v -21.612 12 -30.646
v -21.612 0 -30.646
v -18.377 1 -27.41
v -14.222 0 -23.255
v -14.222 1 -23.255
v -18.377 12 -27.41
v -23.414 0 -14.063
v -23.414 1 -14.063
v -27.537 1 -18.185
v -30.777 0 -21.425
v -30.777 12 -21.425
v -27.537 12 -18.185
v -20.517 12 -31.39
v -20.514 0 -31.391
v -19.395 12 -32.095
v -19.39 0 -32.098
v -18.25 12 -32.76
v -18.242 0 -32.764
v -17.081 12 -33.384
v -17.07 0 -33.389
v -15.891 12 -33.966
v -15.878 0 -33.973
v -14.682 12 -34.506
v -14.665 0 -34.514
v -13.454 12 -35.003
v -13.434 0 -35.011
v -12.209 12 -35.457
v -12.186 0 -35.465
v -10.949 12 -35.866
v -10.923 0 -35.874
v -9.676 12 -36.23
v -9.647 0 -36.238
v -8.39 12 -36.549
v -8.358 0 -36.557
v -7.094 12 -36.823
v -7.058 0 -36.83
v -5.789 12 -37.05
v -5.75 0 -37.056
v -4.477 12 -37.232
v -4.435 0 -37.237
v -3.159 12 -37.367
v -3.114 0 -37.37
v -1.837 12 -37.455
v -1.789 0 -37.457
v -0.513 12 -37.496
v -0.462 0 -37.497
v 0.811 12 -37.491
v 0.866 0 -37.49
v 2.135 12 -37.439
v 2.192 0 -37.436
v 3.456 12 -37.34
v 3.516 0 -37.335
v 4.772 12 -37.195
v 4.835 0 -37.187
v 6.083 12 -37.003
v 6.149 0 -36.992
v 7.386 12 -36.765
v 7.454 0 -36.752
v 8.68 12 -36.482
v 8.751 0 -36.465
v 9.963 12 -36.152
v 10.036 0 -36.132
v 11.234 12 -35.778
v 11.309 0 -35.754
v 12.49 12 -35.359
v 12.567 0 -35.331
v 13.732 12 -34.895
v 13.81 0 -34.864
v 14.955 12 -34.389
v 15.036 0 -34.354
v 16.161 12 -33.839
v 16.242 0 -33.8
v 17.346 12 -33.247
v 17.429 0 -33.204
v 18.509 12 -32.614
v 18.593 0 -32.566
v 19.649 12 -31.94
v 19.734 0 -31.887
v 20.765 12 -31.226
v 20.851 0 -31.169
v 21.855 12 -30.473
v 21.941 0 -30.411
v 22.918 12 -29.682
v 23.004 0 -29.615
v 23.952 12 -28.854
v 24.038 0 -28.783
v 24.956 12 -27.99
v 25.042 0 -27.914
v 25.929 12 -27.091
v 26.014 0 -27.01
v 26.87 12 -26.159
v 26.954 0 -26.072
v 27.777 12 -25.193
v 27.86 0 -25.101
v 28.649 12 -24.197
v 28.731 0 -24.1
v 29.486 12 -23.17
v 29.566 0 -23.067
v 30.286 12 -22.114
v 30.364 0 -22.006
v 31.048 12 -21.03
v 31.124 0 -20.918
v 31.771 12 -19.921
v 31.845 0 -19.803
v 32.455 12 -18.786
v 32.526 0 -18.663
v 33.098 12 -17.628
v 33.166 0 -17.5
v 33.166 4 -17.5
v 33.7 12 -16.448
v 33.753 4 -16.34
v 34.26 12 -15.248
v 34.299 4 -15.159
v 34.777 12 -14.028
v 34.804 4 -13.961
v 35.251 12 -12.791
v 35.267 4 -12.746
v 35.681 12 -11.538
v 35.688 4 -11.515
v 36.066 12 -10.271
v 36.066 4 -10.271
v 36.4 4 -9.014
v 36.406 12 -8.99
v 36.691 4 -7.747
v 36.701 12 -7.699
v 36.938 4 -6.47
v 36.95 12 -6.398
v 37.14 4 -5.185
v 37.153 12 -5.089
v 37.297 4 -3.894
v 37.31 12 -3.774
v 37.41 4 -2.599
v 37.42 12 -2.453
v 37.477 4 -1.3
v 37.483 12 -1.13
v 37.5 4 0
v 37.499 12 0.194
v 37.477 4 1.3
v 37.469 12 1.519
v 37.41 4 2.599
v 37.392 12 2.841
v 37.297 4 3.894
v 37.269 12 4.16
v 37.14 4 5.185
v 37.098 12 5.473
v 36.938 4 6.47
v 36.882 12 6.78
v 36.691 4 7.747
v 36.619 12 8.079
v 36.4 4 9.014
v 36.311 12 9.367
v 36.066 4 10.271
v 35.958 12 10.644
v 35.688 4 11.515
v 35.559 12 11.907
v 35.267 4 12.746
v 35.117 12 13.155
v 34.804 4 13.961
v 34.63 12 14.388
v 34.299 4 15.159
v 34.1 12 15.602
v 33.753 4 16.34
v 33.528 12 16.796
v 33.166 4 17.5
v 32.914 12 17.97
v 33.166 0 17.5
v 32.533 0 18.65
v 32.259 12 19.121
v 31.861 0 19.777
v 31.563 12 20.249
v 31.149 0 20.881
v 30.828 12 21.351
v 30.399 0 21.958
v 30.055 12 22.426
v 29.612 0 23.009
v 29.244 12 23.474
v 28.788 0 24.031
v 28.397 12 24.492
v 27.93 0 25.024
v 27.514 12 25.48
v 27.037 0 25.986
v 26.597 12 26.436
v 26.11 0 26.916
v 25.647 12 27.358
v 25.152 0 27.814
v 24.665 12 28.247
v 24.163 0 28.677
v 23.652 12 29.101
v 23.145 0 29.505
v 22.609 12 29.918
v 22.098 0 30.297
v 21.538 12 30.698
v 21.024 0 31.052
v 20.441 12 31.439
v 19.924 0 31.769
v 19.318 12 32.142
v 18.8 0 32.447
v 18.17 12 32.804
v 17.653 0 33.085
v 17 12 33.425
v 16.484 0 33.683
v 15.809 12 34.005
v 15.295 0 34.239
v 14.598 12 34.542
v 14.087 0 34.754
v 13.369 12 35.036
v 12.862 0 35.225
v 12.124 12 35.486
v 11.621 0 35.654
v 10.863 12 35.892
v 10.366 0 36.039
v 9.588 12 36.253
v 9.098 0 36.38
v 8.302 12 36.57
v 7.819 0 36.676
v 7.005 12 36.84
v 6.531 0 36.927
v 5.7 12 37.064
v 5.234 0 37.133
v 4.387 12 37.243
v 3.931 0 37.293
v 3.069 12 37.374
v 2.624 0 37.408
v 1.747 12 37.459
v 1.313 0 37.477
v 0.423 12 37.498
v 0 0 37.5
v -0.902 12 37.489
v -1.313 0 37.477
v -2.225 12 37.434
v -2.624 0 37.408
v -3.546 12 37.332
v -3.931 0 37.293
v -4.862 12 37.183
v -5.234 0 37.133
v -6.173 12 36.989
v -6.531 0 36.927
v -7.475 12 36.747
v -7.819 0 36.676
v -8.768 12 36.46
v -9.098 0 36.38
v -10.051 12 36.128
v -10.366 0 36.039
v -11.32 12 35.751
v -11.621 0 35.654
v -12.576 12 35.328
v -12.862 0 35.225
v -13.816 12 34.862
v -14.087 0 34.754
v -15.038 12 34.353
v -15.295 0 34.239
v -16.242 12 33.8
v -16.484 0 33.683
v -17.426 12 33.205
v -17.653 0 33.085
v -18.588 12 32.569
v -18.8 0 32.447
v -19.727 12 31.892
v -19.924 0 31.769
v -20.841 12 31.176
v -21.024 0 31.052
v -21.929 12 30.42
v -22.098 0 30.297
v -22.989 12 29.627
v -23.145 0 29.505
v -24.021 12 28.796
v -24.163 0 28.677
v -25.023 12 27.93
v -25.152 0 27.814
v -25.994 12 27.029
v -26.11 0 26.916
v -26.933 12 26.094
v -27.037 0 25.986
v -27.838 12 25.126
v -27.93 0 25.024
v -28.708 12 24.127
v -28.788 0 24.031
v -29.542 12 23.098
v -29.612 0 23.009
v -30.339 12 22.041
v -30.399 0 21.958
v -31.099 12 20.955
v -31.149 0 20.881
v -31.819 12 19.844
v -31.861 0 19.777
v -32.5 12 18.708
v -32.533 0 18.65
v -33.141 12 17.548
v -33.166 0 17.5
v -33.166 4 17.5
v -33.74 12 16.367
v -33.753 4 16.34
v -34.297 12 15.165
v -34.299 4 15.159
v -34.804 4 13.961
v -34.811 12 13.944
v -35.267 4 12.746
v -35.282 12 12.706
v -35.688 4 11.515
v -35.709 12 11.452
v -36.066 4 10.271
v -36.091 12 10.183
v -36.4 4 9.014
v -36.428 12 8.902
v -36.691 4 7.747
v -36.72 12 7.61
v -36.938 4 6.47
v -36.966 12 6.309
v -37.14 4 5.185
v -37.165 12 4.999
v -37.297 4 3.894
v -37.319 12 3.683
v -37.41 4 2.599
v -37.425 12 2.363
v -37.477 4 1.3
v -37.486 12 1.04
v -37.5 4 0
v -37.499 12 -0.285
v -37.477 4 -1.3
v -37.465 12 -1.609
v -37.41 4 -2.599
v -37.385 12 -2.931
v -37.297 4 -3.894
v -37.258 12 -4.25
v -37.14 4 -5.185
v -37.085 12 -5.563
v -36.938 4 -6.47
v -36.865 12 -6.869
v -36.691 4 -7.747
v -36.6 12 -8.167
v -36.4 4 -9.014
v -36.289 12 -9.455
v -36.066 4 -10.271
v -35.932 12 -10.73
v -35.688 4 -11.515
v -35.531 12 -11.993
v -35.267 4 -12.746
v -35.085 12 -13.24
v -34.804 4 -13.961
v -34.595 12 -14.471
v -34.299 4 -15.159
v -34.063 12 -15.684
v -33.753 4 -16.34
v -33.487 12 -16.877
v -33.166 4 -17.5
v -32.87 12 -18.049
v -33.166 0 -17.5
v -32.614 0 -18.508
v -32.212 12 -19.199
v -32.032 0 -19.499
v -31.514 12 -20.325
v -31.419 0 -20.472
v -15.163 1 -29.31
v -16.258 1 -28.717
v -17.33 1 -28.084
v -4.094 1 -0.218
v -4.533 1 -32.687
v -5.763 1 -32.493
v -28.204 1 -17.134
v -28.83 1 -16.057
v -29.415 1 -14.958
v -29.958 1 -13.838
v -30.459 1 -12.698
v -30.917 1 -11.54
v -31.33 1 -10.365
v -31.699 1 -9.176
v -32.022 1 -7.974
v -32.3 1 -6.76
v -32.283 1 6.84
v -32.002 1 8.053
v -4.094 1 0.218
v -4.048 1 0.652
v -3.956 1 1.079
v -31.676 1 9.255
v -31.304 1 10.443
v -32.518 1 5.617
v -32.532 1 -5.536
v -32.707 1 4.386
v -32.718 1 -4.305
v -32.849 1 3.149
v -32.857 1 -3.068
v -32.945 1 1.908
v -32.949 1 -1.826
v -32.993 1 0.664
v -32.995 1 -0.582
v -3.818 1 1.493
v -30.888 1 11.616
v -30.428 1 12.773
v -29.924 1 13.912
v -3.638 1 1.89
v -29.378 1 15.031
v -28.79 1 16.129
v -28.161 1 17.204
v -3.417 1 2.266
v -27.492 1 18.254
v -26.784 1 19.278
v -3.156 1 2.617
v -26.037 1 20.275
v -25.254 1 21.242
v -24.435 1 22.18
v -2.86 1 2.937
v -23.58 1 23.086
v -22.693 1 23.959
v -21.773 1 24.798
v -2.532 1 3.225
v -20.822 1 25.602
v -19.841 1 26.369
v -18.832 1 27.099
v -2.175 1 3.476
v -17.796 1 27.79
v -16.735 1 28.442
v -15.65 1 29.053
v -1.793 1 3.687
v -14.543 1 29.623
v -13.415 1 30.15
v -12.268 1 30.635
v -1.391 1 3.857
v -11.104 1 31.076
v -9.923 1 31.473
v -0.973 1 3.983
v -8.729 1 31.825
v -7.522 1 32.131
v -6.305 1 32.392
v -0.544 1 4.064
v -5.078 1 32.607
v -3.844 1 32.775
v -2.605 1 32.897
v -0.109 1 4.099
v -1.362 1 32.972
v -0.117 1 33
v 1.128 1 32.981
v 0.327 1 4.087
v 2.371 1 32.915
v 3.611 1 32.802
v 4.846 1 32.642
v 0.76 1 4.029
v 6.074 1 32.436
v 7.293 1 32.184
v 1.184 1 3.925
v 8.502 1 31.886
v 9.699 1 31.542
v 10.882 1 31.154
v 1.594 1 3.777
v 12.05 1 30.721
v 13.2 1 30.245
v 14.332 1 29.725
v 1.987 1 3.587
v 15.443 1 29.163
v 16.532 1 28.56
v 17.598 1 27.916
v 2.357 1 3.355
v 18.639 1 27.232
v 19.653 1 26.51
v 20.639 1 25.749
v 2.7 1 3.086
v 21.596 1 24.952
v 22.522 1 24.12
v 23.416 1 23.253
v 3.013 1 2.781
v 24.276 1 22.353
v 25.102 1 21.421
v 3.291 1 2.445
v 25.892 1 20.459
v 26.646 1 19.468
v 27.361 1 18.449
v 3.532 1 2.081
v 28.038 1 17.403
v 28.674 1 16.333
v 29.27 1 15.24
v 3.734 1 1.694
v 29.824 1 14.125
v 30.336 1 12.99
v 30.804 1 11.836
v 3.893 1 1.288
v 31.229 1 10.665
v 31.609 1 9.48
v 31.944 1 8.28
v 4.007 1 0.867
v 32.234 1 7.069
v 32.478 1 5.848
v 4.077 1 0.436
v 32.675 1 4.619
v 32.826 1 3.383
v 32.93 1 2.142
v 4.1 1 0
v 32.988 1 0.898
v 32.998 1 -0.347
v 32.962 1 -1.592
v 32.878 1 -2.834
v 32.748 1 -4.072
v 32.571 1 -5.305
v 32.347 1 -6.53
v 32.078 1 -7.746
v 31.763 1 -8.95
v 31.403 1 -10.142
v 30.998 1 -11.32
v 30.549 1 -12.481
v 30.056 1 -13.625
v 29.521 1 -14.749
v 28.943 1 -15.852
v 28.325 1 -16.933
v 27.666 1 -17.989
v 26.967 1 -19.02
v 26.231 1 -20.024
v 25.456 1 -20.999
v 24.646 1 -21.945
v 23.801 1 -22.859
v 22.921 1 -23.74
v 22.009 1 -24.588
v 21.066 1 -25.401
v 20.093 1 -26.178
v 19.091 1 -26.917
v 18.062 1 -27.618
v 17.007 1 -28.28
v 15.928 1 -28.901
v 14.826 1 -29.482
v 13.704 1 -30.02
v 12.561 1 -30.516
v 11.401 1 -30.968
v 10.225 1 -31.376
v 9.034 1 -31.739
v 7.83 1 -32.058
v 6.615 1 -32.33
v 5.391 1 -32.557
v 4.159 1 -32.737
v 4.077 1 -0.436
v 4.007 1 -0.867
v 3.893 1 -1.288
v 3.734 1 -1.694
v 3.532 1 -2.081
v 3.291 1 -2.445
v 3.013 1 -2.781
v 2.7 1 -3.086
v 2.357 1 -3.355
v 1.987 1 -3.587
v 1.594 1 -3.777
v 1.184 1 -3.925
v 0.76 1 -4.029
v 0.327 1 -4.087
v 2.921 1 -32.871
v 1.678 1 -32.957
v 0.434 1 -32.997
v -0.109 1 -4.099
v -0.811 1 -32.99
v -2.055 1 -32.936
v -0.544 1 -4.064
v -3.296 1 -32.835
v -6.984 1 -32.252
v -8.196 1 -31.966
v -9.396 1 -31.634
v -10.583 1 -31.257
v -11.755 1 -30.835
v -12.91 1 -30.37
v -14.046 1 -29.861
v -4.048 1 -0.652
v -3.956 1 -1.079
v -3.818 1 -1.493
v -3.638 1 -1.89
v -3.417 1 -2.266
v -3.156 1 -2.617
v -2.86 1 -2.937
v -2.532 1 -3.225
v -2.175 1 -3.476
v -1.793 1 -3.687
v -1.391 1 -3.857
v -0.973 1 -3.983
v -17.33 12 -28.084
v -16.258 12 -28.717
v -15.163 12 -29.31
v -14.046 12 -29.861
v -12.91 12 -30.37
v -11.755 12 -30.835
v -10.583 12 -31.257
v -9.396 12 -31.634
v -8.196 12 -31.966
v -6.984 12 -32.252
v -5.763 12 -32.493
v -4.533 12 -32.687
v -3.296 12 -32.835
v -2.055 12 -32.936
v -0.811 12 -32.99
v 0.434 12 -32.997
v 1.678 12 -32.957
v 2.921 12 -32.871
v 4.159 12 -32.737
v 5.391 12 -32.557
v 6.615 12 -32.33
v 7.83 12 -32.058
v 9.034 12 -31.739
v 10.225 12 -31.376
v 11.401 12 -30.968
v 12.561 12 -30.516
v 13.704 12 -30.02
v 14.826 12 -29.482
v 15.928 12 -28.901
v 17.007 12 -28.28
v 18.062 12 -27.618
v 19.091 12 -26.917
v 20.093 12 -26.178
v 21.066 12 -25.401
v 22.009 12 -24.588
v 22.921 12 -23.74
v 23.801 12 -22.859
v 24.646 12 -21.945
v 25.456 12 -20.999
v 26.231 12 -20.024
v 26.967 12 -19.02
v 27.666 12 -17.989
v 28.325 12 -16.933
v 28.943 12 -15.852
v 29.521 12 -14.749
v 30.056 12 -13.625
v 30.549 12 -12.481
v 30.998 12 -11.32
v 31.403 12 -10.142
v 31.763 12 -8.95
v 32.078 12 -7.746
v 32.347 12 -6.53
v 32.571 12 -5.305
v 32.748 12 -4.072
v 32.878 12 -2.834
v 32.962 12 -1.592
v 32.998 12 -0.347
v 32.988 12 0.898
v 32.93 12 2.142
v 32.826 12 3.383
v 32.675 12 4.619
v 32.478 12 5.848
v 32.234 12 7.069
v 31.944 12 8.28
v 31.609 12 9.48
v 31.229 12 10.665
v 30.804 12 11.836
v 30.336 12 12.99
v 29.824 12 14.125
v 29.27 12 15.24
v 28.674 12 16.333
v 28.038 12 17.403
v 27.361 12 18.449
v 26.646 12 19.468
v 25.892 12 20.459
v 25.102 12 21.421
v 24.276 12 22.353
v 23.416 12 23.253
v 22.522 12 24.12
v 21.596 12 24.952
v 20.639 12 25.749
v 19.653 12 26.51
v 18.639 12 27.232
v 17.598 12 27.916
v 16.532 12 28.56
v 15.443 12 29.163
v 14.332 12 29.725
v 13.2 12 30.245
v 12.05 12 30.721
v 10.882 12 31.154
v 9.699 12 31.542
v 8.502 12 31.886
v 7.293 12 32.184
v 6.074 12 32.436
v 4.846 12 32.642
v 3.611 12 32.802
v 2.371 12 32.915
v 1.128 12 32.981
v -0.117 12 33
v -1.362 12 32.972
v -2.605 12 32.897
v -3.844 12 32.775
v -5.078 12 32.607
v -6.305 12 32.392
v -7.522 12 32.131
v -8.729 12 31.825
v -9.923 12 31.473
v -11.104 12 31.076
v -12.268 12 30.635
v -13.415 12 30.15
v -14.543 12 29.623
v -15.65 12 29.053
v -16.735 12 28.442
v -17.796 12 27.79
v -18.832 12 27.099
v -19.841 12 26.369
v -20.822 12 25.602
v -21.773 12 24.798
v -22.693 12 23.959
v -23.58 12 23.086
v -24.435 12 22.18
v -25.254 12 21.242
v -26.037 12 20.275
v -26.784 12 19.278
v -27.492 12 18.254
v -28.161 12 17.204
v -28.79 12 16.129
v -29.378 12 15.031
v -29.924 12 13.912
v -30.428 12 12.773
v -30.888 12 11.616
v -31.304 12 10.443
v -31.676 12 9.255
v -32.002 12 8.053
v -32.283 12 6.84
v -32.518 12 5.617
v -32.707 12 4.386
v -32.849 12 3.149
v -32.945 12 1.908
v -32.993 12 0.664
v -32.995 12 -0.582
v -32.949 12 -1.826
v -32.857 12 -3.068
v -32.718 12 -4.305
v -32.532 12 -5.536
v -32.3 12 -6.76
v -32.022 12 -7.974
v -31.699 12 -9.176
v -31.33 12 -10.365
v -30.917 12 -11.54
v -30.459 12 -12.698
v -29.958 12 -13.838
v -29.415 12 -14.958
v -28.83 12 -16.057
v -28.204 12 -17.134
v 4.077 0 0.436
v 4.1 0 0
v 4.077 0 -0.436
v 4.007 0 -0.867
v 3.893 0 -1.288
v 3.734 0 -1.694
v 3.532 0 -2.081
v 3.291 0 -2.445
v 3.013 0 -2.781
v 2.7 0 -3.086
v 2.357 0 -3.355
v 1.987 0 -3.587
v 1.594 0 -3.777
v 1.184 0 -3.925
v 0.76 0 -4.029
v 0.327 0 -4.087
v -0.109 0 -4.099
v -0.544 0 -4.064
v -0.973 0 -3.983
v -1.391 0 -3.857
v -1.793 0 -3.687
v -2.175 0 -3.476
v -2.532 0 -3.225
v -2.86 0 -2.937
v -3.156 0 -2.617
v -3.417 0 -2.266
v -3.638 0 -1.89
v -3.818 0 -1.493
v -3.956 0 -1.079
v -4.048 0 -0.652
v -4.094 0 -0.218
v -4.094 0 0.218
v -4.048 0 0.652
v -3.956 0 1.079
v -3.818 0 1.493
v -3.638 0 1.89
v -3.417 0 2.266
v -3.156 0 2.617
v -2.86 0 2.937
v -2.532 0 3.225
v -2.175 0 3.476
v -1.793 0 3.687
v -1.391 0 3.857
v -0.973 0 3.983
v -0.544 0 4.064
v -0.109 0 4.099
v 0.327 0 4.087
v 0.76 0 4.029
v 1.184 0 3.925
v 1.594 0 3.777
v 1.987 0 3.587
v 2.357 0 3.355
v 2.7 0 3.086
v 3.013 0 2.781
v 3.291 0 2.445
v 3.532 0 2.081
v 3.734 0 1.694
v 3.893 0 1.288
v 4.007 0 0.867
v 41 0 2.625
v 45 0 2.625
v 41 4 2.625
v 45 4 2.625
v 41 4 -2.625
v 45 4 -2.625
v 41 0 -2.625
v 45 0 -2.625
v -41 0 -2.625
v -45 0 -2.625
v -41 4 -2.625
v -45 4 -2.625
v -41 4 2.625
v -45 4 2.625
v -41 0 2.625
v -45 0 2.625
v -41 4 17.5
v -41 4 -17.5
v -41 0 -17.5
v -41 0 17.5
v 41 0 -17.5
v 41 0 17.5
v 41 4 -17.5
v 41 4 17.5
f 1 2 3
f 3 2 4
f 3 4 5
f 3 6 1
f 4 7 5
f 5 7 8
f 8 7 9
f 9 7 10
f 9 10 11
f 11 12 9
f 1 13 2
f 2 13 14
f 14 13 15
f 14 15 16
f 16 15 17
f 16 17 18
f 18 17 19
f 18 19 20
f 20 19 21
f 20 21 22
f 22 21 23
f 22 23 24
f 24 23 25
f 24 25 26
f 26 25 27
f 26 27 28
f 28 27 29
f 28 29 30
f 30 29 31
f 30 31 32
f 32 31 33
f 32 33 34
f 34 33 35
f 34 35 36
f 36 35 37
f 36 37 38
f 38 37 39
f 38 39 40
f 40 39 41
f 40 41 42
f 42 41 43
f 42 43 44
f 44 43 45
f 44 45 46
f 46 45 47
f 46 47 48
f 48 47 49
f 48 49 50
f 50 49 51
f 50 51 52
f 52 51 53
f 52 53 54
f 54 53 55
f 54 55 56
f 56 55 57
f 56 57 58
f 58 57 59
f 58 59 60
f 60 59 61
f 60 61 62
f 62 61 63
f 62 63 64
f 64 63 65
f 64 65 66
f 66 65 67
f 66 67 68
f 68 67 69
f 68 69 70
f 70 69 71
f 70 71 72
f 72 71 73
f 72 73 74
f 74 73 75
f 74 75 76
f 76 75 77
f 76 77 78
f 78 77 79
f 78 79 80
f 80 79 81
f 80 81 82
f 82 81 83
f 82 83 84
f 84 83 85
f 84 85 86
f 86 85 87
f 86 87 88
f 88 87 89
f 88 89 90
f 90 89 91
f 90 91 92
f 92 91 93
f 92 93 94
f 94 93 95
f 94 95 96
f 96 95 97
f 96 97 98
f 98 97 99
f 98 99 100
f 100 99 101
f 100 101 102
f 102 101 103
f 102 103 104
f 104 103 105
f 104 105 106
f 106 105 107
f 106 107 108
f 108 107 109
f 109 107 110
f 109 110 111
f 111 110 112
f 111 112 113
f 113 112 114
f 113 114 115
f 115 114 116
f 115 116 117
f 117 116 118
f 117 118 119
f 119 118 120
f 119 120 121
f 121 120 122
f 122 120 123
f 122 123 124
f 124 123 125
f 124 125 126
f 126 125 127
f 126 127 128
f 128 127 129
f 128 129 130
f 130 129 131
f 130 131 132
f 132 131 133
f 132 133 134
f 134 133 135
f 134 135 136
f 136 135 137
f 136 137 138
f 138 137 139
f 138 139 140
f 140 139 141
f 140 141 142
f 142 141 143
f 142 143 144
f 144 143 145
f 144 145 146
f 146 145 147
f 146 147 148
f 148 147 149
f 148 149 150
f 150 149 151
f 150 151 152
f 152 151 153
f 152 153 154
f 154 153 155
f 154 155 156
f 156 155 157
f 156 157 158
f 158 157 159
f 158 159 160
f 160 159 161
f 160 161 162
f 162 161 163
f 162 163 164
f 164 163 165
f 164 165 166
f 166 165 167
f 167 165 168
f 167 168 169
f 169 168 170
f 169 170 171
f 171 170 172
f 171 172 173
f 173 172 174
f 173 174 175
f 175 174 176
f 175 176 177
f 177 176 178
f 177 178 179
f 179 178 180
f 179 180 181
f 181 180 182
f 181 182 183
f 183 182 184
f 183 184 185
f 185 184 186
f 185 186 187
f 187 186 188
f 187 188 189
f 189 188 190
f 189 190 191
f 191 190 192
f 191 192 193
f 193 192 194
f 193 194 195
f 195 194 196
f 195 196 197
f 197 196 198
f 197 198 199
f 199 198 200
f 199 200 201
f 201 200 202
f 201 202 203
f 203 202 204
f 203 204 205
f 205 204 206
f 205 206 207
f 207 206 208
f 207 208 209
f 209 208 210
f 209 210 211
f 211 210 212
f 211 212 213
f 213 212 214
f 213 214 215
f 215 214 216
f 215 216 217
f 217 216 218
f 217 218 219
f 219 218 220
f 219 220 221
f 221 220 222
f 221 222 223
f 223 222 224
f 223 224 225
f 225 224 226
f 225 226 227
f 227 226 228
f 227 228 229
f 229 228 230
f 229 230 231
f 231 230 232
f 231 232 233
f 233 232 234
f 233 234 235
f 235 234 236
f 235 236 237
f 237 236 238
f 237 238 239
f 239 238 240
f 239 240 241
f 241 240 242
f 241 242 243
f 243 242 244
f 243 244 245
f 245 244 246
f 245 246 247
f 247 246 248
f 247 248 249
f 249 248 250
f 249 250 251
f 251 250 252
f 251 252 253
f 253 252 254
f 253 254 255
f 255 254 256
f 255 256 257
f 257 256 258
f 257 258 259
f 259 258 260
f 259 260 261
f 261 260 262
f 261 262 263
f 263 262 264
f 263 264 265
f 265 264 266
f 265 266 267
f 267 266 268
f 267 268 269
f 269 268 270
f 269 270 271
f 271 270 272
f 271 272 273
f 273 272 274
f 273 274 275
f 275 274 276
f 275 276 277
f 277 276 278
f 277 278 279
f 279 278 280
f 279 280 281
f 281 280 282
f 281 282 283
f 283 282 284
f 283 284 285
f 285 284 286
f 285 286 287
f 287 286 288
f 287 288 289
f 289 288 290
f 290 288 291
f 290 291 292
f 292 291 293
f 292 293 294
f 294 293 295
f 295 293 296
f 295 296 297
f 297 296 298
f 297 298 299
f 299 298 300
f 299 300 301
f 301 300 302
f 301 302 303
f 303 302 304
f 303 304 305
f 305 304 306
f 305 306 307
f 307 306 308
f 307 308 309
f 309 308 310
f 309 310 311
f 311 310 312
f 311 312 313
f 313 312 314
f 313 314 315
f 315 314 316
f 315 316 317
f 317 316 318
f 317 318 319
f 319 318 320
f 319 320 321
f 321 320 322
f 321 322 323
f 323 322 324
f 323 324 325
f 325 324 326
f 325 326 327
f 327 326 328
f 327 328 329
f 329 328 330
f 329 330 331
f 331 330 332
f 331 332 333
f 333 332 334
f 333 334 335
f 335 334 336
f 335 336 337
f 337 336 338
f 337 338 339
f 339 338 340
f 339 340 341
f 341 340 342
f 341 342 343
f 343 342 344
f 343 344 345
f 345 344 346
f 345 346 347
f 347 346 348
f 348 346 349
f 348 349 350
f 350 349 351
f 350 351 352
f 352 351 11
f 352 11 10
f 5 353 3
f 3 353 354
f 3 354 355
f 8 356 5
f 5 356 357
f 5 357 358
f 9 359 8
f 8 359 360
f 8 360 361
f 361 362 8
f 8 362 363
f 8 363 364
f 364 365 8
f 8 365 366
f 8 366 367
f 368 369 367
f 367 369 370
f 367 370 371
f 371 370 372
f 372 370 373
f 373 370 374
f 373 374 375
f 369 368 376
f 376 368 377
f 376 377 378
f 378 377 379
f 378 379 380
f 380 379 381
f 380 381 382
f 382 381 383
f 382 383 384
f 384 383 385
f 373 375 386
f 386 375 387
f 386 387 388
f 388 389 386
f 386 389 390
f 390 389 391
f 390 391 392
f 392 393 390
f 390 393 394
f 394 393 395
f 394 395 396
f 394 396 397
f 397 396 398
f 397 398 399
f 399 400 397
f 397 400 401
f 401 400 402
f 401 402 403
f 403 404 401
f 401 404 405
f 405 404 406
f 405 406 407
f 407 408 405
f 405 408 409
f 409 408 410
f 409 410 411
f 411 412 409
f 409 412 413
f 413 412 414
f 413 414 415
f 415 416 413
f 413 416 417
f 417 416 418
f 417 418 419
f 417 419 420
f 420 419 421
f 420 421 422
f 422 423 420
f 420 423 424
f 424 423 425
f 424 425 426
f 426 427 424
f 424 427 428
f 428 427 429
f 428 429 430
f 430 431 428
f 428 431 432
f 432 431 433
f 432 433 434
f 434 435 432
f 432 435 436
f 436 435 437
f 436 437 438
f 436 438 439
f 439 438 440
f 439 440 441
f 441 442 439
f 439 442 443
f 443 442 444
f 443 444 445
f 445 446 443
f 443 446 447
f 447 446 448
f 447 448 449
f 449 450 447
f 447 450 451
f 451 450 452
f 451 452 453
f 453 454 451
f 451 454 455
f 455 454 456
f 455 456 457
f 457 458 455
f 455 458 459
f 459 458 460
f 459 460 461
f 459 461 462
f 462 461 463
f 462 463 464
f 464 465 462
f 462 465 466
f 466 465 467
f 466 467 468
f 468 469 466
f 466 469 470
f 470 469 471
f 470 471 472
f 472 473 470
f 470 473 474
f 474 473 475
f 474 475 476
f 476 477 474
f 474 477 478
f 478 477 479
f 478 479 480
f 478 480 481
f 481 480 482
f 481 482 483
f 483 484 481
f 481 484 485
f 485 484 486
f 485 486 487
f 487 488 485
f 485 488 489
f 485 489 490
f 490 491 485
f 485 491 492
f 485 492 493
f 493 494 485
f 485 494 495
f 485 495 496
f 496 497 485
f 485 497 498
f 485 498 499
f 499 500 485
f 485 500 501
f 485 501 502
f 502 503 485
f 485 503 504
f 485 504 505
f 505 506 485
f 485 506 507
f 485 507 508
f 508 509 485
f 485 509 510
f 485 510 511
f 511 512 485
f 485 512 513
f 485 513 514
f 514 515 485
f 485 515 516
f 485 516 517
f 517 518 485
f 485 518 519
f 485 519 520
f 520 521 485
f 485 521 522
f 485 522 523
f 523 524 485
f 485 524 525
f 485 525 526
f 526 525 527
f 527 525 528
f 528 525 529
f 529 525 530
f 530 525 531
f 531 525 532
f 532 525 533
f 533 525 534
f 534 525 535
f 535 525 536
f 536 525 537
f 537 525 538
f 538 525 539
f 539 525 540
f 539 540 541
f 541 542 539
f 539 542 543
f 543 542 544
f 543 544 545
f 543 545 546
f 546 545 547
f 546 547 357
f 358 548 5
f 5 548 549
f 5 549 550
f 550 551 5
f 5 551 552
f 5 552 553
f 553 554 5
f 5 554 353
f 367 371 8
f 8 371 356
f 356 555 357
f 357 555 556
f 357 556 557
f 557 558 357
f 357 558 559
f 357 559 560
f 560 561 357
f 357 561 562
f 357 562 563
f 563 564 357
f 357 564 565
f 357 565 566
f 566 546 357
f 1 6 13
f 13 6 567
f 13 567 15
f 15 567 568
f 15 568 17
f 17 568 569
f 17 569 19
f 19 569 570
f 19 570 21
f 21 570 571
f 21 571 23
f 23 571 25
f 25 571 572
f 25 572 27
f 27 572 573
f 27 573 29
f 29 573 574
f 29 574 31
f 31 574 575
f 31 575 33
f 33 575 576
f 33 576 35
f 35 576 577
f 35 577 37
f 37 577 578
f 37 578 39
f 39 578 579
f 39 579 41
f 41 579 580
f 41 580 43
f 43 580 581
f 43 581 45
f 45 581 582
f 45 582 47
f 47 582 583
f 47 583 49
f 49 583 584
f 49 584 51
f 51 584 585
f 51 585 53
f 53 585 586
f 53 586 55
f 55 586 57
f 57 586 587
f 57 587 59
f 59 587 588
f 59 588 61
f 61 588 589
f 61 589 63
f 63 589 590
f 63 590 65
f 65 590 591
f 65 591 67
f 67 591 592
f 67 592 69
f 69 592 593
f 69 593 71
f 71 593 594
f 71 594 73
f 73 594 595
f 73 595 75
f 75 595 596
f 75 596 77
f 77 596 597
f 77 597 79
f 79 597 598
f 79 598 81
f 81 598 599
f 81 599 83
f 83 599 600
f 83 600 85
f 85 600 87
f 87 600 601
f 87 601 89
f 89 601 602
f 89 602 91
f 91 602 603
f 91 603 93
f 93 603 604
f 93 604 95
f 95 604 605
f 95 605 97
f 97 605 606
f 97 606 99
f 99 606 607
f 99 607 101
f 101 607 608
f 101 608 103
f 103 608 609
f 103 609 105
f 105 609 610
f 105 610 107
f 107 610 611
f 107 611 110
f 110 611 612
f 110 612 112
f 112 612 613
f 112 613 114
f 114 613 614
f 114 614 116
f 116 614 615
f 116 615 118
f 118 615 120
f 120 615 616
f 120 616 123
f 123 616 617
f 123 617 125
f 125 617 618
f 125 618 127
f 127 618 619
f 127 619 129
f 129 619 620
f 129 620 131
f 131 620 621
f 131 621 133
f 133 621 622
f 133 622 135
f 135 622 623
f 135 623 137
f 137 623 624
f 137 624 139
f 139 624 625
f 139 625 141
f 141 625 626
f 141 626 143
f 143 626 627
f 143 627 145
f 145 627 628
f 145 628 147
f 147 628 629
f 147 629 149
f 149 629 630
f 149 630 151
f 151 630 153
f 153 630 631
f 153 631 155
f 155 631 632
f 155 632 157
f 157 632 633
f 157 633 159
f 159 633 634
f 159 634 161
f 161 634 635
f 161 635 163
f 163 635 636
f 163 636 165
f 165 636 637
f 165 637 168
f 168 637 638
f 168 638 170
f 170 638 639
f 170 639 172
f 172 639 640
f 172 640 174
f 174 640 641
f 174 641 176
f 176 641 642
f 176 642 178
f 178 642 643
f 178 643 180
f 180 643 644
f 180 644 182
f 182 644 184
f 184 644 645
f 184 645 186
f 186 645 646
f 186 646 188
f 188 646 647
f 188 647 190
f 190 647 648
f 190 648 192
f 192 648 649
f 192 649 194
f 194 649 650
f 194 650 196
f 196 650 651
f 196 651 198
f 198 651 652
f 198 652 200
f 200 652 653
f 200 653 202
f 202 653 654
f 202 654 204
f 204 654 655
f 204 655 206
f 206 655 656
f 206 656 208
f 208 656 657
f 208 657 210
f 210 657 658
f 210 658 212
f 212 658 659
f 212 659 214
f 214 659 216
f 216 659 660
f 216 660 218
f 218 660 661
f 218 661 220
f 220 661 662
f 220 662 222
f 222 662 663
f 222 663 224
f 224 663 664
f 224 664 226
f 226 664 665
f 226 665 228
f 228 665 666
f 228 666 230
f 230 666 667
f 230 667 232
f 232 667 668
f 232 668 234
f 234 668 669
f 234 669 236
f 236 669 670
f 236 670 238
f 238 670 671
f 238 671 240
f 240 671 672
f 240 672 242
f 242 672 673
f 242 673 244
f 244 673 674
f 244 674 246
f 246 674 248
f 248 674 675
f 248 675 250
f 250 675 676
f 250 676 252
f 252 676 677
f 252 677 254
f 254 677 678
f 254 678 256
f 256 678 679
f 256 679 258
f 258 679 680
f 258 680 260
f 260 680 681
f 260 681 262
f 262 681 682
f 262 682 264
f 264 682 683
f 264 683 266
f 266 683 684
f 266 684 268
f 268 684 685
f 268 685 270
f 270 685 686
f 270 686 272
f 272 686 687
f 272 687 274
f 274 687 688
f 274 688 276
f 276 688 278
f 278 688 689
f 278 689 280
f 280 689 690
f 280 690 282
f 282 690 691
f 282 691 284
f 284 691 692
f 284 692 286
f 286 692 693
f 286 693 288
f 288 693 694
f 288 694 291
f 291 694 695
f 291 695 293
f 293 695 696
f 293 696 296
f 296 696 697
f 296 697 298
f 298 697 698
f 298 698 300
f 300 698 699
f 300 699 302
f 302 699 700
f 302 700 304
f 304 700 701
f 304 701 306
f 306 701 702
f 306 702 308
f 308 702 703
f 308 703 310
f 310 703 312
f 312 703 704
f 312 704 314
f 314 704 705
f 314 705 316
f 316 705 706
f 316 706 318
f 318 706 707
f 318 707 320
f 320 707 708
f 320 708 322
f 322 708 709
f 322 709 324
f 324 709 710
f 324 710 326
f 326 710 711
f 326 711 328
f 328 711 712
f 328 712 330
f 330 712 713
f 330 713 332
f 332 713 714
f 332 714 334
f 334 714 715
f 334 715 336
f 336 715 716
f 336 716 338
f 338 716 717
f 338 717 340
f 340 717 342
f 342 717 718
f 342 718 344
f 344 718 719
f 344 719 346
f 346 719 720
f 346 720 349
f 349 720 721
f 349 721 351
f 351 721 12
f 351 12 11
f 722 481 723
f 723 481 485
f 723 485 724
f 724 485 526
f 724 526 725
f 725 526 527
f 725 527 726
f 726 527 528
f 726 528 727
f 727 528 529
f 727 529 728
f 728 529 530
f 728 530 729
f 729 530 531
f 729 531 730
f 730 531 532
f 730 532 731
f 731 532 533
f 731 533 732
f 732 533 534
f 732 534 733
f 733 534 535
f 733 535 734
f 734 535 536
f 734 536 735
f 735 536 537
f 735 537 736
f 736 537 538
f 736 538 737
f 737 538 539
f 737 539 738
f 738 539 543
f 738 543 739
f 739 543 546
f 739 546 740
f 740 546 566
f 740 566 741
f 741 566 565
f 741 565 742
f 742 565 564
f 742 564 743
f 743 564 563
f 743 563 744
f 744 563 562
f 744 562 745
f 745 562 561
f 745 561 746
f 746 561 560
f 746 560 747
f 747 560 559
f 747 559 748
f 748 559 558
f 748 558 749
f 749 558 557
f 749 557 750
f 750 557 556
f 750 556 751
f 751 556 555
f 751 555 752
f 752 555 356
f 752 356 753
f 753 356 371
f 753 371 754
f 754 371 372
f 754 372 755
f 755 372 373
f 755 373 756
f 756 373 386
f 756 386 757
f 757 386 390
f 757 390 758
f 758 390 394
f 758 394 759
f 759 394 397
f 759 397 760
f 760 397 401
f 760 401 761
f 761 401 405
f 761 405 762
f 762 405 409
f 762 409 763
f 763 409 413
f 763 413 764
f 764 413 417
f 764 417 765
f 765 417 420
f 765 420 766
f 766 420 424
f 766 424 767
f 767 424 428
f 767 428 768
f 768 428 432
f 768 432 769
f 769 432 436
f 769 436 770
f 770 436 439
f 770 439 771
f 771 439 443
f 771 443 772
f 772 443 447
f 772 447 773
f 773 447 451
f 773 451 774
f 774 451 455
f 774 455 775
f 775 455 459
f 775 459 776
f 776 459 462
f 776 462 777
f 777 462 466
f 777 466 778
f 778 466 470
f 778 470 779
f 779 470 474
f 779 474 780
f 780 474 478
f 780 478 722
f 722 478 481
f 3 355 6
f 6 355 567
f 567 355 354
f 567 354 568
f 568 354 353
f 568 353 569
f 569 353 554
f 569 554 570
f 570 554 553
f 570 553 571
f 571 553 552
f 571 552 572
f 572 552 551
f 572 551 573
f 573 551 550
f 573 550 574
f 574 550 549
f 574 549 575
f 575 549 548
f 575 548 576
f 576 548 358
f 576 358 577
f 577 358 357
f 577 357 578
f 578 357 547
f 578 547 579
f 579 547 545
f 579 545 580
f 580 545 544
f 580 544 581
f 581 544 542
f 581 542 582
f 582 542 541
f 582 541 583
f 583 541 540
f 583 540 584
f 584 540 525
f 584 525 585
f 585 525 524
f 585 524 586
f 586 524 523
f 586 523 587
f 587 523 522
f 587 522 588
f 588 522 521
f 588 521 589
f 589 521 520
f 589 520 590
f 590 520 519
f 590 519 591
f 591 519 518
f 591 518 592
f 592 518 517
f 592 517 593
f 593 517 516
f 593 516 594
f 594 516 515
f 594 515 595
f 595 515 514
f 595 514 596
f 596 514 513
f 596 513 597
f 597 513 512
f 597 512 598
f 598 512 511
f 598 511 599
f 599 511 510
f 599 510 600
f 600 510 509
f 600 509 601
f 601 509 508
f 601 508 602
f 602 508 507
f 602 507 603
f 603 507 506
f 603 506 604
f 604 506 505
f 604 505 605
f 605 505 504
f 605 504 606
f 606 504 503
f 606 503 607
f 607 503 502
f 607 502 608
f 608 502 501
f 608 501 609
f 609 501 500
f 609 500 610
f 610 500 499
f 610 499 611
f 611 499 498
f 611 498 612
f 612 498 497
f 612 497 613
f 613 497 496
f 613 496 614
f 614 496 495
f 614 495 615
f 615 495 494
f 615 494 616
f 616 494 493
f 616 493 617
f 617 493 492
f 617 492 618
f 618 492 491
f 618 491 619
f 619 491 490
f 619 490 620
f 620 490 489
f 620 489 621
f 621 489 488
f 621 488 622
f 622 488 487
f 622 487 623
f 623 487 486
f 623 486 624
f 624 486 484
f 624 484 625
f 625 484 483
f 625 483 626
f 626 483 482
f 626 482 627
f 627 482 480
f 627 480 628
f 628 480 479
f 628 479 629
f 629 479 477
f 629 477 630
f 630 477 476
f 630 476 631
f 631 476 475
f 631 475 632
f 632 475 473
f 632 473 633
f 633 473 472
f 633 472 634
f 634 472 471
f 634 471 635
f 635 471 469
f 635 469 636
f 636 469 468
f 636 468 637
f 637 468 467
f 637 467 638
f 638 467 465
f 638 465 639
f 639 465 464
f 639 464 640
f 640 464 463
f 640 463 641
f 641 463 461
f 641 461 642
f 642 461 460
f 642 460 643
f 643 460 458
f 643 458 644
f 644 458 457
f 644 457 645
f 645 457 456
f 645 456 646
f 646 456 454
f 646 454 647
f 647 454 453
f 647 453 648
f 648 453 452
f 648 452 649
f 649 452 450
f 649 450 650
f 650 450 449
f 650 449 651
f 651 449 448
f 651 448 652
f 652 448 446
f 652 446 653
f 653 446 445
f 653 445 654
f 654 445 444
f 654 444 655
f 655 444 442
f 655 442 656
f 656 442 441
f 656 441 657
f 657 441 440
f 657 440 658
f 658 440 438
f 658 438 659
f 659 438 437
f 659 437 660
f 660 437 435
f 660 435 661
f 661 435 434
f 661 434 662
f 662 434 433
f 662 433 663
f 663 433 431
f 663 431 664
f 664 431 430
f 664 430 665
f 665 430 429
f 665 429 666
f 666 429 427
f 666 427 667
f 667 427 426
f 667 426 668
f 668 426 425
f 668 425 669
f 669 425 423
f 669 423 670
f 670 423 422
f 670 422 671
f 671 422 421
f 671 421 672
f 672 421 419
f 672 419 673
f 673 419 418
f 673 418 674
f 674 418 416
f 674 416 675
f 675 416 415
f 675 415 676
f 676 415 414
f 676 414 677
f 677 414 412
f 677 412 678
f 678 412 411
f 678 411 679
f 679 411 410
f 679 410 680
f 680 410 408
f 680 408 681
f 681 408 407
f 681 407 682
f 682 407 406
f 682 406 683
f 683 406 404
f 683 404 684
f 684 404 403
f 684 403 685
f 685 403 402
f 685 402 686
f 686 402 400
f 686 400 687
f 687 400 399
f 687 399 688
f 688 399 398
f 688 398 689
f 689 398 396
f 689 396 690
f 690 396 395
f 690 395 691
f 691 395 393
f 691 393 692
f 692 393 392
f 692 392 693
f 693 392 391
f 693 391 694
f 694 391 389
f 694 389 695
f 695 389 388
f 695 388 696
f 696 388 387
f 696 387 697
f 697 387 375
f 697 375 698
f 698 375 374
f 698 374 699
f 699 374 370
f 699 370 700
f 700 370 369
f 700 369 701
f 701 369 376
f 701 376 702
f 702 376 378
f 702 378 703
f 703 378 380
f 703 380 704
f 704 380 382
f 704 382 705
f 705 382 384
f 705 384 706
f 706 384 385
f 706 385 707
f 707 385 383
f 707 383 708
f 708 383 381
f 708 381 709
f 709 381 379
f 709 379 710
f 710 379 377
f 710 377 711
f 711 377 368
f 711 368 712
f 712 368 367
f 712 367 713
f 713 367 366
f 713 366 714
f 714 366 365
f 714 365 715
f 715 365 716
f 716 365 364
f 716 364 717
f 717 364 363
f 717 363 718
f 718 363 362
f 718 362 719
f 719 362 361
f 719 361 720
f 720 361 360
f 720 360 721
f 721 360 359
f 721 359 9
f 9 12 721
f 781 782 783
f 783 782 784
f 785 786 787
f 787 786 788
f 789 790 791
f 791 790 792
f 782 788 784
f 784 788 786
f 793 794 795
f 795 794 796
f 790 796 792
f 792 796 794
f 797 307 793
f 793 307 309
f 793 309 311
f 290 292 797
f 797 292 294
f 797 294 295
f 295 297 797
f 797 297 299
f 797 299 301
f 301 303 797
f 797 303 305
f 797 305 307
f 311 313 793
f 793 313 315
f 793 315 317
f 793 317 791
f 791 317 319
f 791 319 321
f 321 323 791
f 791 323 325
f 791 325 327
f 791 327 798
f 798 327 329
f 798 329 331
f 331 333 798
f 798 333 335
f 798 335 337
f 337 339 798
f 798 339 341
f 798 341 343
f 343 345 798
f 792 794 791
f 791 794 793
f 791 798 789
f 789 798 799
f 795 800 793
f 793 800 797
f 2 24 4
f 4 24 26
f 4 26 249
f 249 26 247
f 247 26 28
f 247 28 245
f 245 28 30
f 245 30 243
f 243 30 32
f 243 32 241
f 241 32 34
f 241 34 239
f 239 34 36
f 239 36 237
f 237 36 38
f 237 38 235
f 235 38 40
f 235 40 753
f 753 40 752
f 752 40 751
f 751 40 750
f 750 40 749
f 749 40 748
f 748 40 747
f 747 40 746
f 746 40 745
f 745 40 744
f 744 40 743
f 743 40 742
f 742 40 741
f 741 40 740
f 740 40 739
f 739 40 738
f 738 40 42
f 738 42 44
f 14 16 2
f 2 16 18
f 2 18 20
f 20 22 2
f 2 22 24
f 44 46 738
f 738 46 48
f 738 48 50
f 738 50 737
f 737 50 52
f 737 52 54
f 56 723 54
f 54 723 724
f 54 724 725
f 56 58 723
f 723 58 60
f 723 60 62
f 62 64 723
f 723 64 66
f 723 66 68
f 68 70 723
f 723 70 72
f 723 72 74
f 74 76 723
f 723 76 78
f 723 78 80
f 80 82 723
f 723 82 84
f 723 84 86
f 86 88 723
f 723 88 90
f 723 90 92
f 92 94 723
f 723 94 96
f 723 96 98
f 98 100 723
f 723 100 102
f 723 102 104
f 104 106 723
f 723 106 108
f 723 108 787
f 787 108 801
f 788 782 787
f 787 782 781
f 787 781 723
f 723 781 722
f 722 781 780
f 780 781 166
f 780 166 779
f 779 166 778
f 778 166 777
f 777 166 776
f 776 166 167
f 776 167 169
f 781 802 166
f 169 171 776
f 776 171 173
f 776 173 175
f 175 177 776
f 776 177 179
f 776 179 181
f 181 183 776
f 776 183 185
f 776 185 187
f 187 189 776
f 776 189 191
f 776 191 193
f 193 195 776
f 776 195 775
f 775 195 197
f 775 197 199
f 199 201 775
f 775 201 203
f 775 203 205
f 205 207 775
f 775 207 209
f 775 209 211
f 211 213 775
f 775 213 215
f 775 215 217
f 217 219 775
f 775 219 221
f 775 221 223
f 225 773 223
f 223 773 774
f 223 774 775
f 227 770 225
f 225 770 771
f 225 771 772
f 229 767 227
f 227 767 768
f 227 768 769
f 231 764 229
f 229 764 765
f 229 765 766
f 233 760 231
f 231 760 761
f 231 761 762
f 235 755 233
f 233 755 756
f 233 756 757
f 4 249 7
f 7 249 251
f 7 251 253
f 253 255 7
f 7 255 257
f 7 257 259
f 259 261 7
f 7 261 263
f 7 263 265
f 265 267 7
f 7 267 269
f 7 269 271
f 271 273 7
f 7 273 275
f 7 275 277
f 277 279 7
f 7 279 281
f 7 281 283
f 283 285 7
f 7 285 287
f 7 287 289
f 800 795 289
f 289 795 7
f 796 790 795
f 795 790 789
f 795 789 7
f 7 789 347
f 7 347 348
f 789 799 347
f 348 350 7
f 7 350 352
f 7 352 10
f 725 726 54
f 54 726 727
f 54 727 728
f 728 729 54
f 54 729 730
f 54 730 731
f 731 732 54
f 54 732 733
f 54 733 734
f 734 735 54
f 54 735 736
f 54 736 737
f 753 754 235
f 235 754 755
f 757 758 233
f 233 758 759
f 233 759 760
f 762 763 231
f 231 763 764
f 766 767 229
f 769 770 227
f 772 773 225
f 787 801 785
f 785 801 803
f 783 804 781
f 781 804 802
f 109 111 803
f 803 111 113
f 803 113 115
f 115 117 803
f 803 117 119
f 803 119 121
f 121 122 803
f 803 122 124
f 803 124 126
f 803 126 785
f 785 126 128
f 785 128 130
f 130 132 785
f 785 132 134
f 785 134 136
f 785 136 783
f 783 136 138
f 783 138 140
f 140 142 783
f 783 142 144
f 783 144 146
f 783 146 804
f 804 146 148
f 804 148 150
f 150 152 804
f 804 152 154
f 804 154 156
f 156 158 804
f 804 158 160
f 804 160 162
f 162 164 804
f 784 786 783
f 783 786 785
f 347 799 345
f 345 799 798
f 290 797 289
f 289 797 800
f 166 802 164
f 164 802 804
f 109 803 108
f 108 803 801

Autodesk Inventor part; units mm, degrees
ref_plane "YZ Plane" through (0, 0, 0) normal (1, 0, 0) x (0, 1, 0)
ref_plane "XZ Plane" through (0, 0, 0) normal (0, 1, 0) x (-1, 0, 0)
ref_plane "XY Plane" through (0, 0, 0) normal (0, 0, 1) x (1, 0, 0)
sketch "Sketch1" plane through (0, 0, 0) normal (0, 1, 0) x (-1, 0, 0)
  circle A0 centre (0, 0) radius 37.5
  dimension "d0" = 75
extrude "Extrusion1" add sketch "Sketch1" along normal blind 12
sketch "Sketch3" plane through (0, 0, 0) normal (0, -1, 0) x (1, 0, 0)
  line L0 (41, 17.5) -> (-41, 17.5)
  line L1 (-41, 17.5) -> (-41, -17.5)
  line L2 (-41, -17.5) -> (41, -17.5)
  line L3 (41, -17.5) -> (41, 17.5)
  point P0 (0, 0)
  point P1 (41, 0)
  point P2 (0, -17.5)
  dimension "d6" = 82
  dimension "d7" = 35
extrude "Extrusion3" add sketch "Sketch3" against normal blind 4
sketch "Sketch4" plane through (0, 0, 0) normal (0, -1, 0) x (1, 0, 0)
  line L0 (-45, -2.625) -> (45, -2.625)
  line L1 (45, -2.625) -> (45, 2.625)
  line L2 (45, 2.625) -> (-45, 2.625)
  line L3 (-45, 2.625) -> (-45, -2.625)
  point P0 (0, 0)
  point P1 (-45, 0)
  point P2 (0, 2.625)
  dimension "d10" = 90
  dimension "d11" = 5.25
extrude "Extrusion4" add sketch "Sketch4" against normal blind 4
sketch "Sketch2" plane through (0, 12, 0) normal (0, 1, 0) x (1, 0, 0)
  circle A0 centre (0, 0) radius 33
  dimension "d3" = 66
extrude "Extrusion2" cut sketch "Sketch2" against normal blind 11
sketch "Sketch5" plane through (0, 1, 0) normal (0, 1, 0) x (1, 0, 0)
  circle A0 centre (0, 0) radius 4.1
  dimension "d14" = 8.2
extrude "Extrusion5" cut sketch "Sketch5" against normal through all
sketch "Sketch6" plane through (0, 12, 0) normal (0, 1, 0) x (1, 0, 0)
  line L0 (-23.4141, 14.0625) -> (-31.1923, 21.8407)
  line L1 (-31.1923, 21.8407) -> (-21.9999, 31.0331)
  line L2 (-21.9999, 31.0331) -> (-14.2217, 23.2549)
  line L3 (-14.2217, 23.2549) -> (-23.4141, 14.0625)
  line L4 (0, 0) -> (-32.7126, 0) construction
  line L5 (0, 0) -> (0, 33) construction
  circle A0 centre (0, 0) radius 33 construction
  circle A1 centre (0, 0) radius 37.5 construction
  dimension "d17" = 11
  dimension "d18" = 13
extrude "Extrusion6" cut sketch "Sketch6" against normal through all
properties part number "SnackClock_exterior_final"
